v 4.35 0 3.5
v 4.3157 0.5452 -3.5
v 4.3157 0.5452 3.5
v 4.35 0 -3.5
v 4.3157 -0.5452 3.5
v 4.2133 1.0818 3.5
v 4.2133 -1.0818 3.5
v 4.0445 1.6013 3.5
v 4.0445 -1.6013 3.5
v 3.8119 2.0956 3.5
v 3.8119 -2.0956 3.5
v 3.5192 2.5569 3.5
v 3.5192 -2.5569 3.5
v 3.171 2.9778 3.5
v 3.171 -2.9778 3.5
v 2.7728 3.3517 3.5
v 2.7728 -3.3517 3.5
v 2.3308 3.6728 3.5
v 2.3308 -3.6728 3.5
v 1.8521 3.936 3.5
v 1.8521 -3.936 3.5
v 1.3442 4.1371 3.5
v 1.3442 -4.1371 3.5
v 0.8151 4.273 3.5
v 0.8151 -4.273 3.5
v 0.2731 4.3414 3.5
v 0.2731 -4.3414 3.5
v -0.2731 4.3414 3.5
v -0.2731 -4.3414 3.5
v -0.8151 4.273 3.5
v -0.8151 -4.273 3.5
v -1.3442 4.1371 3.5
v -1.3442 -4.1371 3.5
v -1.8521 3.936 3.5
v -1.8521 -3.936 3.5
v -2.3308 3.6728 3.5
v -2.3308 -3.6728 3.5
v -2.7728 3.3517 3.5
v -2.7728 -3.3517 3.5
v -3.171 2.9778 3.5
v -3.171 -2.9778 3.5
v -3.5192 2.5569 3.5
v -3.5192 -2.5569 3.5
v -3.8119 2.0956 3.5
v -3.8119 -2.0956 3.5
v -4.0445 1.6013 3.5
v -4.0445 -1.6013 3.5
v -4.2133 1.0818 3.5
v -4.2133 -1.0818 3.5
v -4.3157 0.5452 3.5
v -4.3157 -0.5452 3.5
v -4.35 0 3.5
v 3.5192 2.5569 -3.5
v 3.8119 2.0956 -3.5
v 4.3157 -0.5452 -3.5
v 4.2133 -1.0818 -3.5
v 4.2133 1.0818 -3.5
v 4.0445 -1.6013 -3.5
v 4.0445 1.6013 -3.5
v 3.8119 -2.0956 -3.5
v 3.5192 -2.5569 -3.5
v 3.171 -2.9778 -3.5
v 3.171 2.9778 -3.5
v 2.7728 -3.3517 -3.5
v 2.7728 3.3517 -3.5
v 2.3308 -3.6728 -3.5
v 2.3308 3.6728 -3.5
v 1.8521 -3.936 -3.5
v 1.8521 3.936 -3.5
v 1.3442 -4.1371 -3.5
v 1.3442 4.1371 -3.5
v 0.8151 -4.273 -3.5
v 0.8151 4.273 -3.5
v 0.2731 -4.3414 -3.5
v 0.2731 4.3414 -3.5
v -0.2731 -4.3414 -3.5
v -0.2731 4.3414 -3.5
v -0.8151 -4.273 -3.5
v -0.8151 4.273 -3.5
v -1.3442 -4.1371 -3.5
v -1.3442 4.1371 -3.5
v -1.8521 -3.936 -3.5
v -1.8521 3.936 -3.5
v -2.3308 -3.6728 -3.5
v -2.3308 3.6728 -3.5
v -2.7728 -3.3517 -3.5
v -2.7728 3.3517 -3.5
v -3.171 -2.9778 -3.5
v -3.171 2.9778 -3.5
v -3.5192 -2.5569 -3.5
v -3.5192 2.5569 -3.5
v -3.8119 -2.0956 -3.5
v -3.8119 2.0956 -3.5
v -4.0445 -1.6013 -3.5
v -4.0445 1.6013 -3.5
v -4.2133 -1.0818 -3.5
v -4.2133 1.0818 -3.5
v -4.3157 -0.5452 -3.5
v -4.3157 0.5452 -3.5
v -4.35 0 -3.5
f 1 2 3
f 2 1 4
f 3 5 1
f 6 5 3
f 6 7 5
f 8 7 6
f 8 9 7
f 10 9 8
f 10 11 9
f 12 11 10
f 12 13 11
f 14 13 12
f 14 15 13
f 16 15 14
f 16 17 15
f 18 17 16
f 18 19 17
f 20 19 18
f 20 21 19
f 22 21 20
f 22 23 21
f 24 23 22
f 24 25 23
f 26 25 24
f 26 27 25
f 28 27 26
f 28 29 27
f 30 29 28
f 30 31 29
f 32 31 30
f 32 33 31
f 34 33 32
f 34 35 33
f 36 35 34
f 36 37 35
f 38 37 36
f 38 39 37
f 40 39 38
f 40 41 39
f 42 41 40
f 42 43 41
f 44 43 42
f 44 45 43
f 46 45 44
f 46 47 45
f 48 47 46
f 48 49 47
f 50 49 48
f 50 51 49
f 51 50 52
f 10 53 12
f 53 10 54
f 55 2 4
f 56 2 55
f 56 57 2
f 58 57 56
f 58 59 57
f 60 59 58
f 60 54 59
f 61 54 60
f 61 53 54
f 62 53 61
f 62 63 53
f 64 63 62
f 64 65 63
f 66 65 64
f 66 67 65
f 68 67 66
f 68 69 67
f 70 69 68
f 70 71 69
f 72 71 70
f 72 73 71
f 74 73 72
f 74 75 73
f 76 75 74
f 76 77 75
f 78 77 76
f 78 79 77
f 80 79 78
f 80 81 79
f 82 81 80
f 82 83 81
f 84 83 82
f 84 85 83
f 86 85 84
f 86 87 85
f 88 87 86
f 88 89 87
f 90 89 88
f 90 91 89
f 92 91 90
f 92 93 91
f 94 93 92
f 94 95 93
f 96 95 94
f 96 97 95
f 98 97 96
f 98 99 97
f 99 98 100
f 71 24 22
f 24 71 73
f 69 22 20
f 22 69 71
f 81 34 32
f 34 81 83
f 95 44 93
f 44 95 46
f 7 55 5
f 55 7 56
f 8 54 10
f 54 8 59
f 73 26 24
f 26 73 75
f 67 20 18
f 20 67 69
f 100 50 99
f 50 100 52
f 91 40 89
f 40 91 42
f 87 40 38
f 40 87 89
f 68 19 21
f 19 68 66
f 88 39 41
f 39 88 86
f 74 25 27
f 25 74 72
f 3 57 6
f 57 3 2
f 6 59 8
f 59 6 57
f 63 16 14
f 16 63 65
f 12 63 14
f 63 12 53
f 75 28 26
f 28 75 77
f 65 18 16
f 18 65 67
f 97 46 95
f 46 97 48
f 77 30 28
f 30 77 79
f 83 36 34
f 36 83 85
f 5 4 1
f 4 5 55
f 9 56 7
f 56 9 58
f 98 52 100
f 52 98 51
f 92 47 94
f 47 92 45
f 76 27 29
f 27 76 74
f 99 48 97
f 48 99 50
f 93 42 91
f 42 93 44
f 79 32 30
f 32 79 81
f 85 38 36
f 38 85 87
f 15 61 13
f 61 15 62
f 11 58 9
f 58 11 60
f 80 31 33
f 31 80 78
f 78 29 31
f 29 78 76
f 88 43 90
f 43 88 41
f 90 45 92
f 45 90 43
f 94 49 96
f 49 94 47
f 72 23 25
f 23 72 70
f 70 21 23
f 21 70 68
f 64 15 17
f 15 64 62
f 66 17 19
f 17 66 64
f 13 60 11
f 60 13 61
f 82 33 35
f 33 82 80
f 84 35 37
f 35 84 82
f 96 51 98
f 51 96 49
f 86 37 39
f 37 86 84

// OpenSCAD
$fn = 50;


difference() {
	union() {
		translate(v = [0, 0, -3.5000000000]) {
			cylinder(h = 7, r = 4.3500000000);
		}
	}
	union() {
		translate(v = [0, 0, -100.0000000000]) {
			cylinder(h = 200, r = 0);
		}
	}
}
